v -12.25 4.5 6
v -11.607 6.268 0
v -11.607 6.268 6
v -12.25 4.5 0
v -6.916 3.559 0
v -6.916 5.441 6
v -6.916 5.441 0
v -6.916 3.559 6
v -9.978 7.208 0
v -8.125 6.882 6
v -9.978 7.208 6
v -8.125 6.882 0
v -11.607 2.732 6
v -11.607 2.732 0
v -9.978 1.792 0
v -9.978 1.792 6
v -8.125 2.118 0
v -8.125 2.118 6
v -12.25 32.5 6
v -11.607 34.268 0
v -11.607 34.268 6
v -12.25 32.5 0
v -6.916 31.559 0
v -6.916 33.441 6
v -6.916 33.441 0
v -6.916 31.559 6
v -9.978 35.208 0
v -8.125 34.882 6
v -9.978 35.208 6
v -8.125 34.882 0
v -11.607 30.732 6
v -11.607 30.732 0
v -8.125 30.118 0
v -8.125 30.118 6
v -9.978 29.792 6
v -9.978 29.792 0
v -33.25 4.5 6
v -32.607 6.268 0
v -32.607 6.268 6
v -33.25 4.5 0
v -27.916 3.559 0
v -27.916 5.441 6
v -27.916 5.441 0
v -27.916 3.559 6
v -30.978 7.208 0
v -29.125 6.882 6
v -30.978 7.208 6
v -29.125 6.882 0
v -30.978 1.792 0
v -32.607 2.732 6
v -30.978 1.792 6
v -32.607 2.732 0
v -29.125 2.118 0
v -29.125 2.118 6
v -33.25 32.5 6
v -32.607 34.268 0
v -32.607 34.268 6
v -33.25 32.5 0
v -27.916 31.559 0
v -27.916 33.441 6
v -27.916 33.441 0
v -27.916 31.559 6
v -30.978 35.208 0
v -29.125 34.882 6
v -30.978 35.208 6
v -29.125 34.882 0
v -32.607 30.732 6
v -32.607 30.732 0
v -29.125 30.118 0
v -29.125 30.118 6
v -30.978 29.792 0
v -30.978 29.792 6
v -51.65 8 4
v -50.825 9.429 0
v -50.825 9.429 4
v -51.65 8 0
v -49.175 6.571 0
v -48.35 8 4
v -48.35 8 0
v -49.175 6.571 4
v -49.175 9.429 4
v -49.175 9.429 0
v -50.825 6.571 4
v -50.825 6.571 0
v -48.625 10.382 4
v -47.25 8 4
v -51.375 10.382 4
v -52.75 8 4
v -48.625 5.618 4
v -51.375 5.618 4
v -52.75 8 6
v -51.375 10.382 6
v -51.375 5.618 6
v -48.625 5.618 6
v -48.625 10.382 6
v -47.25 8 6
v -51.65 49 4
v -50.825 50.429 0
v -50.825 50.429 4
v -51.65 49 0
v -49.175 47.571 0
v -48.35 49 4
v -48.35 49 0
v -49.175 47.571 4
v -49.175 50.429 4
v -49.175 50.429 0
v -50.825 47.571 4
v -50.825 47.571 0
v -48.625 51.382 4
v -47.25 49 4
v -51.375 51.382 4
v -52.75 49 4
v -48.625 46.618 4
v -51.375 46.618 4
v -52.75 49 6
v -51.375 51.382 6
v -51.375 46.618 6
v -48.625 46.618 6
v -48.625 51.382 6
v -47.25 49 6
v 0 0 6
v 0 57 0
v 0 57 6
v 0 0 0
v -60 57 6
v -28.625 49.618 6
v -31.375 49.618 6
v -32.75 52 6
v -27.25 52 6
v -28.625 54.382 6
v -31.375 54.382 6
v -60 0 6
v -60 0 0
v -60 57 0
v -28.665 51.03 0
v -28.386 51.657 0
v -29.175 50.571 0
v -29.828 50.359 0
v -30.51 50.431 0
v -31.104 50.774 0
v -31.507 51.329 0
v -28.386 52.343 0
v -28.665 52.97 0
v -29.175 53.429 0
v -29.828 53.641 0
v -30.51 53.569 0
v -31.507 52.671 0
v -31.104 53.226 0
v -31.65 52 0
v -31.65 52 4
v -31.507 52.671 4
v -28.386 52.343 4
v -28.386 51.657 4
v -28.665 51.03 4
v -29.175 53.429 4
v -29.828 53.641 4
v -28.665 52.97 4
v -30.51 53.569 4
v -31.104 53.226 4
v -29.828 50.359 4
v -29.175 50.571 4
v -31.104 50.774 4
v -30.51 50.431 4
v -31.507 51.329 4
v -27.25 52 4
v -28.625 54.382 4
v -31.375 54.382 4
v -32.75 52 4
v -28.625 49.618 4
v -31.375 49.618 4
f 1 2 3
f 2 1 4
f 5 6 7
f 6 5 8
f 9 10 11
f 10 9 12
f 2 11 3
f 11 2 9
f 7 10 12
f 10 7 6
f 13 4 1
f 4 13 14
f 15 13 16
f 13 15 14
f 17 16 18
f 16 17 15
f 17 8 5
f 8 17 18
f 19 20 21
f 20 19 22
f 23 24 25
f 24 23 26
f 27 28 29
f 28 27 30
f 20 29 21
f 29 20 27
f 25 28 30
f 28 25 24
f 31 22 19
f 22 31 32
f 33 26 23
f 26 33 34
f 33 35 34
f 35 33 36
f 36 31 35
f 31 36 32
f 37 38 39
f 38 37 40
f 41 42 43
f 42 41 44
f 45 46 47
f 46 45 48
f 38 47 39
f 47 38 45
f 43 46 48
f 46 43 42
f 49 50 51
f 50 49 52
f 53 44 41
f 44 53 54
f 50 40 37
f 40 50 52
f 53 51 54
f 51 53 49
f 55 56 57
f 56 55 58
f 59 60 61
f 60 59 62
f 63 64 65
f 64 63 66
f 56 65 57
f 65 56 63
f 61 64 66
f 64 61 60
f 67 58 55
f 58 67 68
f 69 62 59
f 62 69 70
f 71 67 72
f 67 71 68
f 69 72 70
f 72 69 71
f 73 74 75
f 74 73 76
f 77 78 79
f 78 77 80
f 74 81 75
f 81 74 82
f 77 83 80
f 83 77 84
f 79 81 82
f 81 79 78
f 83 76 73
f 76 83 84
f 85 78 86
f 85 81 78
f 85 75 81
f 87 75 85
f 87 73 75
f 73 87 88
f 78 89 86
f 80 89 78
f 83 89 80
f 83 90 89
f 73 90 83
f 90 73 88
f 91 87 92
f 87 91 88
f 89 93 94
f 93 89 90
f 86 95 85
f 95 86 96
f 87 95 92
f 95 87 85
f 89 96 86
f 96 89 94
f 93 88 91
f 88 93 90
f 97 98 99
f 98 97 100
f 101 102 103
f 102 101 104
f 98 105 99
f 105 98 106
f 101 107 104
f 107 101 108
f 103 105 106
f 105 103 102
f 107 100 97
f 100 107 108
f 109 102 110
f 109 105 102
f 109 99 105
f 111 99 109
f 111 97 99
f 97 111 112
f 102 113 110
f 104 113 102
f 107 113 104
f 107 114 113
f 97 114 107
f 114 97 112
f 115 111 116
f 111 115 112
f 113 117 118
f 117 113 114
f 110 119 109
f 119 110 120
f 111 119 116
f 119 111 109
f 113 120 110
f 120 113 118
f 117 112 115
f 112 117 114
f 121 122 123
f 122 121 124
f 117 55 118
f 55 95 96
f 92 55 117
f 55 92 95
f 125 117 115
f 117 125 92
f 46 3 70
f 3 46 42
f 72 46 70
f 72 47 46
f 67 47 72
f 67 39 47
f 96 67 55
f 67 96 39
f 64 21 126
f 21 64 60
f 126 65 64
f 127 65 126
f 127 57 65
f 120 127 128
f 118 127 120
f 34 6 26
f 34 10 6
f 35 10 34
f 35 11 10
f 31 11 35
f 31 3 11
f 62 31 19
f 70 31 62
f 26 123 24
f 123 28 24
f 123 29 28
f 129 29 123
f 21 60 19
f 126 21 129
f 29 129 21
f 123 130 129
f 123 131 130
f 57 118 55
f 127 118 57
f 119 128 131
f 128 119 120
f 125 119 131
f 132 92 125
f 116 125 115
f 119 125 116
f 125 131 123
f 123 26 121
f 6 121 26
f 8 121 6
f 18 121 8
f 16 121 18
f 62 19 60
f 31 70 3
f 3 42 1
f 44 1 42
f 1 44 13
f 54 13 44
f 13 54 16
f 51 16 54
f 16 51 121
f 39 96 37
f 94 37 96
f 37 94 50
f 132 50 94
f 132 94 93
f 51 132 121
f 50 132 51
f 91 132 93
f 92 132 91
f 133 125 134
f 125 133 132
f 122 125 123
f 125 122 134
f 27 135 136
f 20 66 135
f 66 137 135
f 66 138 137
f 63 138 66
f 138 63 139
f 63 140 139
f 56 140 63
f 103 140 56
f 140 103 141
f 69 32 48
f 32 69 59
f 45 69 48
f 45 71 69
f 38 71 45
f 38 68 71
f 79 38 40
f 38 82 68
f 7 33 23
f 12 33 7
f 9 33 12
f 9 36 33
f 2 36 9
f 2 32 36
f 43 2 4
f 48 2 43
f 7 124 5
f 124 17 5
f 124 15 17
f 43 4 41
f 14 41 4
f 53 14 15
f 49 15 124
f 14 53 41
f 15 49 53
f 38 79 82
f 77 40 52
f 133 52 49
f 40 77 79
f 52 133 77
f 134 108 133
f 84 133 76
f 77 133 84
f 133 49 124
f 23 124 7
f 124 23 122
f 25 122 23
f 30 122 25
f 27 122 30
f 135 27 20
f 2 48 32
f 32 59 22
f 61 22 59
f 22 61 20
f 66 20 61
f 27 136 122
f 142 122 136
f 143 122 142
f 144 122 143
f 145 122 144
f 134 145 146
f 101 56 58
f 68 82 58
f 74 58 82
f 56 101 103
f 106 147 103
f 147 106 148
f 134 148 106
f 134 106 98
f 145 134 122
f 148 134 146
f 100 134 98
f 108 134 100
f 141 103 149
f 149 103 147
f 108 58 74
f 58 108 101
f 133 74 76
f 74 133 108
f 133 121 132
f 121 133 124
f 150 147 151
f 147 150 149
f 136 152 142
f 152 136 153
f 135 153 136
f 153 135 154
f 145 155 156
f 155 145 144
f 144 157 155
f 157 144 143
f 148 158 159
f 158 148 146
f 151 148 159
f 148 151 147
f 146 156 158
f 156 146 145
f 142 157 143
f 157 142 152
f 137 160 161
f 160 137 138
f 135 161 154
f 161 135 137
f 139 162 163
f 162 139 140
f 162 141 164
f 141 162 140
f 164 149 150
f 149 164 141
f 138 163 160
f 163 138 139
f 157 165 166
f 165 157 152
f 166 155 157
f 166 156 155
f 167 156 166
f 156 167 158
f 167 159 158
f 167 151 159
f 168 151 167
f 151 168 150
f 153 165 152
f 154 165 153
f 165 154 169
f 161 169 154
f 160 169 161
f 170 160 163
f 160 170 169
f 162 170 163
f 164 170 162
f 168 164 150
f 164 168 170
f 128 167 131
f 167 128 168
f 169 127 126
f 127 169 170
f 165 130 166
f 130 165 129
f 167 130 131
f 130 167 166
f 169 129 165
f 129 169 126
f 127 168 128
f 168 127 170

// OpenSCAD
/**
 * YPlateFront.scad
 * 
 * Created by Diego Viejo
 * 04/May/2016
 * 
 */

//SC10UU dimmensions
SCWidth = 40;
SCHoleX = 21;
SCLength = 35 + 2;
SCHoleY = 28;
SCHoleDiam = 5 + 0.5;


Width = SCWidth + 20;
Length = SCLength+20;
Height = 6;

mirror([1,0,0])
mainBlock();

module mainBlock()
difference()
{
    cube([Width, Length, Height]);
    
    for(i = [-1, 1]) 
    {
        for(j = [-1, 1])
            translate([(SCWidth+i*SCHoleX)/2, (SCLength+j*SCHoleY)/2, -1]) cylinder(d=SCHoleDiam, h=Height+2);
        translate([Width-10, (Length+i*41)/2, -1]) cylinder(d=3.3, h=Height+2);
        translate([Width-10, (Length+i*41)/2, Height-2]) cylinder(d=5.5, h=Height+2, $fn=6);
    }
    
    translate([Width/2, Length-5, -1]) cylinder(d=3.3, h=Height+2, $fn=15);
    translate([Width/2, Length-5, Height-2]) cylinder(d=5.5, h=Height+2, $fn=6);
    
    
}
